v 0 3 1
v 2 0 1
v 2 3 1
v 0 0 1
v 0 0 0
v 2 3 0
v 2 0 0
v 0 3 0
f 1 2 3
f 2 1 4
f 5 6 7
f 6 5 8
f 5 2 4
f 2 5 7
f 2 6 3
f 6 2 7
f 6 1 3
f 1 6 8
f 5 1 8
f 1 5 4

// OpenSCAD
/* Warning, this is a very basic generator with a lot of approximation 
input data : [VQFN, NVC, 2x3x1.0mm, 14, , A, C04-25488A]
generated by com.zoubworld.electronics.cad.model3d.Basic
Date : Sun Feb 15 10:50:49 CET 2026
*/

//body
color("black")
translate([0,0,0])
cube([2.0,3.0,1.0], center=false);
